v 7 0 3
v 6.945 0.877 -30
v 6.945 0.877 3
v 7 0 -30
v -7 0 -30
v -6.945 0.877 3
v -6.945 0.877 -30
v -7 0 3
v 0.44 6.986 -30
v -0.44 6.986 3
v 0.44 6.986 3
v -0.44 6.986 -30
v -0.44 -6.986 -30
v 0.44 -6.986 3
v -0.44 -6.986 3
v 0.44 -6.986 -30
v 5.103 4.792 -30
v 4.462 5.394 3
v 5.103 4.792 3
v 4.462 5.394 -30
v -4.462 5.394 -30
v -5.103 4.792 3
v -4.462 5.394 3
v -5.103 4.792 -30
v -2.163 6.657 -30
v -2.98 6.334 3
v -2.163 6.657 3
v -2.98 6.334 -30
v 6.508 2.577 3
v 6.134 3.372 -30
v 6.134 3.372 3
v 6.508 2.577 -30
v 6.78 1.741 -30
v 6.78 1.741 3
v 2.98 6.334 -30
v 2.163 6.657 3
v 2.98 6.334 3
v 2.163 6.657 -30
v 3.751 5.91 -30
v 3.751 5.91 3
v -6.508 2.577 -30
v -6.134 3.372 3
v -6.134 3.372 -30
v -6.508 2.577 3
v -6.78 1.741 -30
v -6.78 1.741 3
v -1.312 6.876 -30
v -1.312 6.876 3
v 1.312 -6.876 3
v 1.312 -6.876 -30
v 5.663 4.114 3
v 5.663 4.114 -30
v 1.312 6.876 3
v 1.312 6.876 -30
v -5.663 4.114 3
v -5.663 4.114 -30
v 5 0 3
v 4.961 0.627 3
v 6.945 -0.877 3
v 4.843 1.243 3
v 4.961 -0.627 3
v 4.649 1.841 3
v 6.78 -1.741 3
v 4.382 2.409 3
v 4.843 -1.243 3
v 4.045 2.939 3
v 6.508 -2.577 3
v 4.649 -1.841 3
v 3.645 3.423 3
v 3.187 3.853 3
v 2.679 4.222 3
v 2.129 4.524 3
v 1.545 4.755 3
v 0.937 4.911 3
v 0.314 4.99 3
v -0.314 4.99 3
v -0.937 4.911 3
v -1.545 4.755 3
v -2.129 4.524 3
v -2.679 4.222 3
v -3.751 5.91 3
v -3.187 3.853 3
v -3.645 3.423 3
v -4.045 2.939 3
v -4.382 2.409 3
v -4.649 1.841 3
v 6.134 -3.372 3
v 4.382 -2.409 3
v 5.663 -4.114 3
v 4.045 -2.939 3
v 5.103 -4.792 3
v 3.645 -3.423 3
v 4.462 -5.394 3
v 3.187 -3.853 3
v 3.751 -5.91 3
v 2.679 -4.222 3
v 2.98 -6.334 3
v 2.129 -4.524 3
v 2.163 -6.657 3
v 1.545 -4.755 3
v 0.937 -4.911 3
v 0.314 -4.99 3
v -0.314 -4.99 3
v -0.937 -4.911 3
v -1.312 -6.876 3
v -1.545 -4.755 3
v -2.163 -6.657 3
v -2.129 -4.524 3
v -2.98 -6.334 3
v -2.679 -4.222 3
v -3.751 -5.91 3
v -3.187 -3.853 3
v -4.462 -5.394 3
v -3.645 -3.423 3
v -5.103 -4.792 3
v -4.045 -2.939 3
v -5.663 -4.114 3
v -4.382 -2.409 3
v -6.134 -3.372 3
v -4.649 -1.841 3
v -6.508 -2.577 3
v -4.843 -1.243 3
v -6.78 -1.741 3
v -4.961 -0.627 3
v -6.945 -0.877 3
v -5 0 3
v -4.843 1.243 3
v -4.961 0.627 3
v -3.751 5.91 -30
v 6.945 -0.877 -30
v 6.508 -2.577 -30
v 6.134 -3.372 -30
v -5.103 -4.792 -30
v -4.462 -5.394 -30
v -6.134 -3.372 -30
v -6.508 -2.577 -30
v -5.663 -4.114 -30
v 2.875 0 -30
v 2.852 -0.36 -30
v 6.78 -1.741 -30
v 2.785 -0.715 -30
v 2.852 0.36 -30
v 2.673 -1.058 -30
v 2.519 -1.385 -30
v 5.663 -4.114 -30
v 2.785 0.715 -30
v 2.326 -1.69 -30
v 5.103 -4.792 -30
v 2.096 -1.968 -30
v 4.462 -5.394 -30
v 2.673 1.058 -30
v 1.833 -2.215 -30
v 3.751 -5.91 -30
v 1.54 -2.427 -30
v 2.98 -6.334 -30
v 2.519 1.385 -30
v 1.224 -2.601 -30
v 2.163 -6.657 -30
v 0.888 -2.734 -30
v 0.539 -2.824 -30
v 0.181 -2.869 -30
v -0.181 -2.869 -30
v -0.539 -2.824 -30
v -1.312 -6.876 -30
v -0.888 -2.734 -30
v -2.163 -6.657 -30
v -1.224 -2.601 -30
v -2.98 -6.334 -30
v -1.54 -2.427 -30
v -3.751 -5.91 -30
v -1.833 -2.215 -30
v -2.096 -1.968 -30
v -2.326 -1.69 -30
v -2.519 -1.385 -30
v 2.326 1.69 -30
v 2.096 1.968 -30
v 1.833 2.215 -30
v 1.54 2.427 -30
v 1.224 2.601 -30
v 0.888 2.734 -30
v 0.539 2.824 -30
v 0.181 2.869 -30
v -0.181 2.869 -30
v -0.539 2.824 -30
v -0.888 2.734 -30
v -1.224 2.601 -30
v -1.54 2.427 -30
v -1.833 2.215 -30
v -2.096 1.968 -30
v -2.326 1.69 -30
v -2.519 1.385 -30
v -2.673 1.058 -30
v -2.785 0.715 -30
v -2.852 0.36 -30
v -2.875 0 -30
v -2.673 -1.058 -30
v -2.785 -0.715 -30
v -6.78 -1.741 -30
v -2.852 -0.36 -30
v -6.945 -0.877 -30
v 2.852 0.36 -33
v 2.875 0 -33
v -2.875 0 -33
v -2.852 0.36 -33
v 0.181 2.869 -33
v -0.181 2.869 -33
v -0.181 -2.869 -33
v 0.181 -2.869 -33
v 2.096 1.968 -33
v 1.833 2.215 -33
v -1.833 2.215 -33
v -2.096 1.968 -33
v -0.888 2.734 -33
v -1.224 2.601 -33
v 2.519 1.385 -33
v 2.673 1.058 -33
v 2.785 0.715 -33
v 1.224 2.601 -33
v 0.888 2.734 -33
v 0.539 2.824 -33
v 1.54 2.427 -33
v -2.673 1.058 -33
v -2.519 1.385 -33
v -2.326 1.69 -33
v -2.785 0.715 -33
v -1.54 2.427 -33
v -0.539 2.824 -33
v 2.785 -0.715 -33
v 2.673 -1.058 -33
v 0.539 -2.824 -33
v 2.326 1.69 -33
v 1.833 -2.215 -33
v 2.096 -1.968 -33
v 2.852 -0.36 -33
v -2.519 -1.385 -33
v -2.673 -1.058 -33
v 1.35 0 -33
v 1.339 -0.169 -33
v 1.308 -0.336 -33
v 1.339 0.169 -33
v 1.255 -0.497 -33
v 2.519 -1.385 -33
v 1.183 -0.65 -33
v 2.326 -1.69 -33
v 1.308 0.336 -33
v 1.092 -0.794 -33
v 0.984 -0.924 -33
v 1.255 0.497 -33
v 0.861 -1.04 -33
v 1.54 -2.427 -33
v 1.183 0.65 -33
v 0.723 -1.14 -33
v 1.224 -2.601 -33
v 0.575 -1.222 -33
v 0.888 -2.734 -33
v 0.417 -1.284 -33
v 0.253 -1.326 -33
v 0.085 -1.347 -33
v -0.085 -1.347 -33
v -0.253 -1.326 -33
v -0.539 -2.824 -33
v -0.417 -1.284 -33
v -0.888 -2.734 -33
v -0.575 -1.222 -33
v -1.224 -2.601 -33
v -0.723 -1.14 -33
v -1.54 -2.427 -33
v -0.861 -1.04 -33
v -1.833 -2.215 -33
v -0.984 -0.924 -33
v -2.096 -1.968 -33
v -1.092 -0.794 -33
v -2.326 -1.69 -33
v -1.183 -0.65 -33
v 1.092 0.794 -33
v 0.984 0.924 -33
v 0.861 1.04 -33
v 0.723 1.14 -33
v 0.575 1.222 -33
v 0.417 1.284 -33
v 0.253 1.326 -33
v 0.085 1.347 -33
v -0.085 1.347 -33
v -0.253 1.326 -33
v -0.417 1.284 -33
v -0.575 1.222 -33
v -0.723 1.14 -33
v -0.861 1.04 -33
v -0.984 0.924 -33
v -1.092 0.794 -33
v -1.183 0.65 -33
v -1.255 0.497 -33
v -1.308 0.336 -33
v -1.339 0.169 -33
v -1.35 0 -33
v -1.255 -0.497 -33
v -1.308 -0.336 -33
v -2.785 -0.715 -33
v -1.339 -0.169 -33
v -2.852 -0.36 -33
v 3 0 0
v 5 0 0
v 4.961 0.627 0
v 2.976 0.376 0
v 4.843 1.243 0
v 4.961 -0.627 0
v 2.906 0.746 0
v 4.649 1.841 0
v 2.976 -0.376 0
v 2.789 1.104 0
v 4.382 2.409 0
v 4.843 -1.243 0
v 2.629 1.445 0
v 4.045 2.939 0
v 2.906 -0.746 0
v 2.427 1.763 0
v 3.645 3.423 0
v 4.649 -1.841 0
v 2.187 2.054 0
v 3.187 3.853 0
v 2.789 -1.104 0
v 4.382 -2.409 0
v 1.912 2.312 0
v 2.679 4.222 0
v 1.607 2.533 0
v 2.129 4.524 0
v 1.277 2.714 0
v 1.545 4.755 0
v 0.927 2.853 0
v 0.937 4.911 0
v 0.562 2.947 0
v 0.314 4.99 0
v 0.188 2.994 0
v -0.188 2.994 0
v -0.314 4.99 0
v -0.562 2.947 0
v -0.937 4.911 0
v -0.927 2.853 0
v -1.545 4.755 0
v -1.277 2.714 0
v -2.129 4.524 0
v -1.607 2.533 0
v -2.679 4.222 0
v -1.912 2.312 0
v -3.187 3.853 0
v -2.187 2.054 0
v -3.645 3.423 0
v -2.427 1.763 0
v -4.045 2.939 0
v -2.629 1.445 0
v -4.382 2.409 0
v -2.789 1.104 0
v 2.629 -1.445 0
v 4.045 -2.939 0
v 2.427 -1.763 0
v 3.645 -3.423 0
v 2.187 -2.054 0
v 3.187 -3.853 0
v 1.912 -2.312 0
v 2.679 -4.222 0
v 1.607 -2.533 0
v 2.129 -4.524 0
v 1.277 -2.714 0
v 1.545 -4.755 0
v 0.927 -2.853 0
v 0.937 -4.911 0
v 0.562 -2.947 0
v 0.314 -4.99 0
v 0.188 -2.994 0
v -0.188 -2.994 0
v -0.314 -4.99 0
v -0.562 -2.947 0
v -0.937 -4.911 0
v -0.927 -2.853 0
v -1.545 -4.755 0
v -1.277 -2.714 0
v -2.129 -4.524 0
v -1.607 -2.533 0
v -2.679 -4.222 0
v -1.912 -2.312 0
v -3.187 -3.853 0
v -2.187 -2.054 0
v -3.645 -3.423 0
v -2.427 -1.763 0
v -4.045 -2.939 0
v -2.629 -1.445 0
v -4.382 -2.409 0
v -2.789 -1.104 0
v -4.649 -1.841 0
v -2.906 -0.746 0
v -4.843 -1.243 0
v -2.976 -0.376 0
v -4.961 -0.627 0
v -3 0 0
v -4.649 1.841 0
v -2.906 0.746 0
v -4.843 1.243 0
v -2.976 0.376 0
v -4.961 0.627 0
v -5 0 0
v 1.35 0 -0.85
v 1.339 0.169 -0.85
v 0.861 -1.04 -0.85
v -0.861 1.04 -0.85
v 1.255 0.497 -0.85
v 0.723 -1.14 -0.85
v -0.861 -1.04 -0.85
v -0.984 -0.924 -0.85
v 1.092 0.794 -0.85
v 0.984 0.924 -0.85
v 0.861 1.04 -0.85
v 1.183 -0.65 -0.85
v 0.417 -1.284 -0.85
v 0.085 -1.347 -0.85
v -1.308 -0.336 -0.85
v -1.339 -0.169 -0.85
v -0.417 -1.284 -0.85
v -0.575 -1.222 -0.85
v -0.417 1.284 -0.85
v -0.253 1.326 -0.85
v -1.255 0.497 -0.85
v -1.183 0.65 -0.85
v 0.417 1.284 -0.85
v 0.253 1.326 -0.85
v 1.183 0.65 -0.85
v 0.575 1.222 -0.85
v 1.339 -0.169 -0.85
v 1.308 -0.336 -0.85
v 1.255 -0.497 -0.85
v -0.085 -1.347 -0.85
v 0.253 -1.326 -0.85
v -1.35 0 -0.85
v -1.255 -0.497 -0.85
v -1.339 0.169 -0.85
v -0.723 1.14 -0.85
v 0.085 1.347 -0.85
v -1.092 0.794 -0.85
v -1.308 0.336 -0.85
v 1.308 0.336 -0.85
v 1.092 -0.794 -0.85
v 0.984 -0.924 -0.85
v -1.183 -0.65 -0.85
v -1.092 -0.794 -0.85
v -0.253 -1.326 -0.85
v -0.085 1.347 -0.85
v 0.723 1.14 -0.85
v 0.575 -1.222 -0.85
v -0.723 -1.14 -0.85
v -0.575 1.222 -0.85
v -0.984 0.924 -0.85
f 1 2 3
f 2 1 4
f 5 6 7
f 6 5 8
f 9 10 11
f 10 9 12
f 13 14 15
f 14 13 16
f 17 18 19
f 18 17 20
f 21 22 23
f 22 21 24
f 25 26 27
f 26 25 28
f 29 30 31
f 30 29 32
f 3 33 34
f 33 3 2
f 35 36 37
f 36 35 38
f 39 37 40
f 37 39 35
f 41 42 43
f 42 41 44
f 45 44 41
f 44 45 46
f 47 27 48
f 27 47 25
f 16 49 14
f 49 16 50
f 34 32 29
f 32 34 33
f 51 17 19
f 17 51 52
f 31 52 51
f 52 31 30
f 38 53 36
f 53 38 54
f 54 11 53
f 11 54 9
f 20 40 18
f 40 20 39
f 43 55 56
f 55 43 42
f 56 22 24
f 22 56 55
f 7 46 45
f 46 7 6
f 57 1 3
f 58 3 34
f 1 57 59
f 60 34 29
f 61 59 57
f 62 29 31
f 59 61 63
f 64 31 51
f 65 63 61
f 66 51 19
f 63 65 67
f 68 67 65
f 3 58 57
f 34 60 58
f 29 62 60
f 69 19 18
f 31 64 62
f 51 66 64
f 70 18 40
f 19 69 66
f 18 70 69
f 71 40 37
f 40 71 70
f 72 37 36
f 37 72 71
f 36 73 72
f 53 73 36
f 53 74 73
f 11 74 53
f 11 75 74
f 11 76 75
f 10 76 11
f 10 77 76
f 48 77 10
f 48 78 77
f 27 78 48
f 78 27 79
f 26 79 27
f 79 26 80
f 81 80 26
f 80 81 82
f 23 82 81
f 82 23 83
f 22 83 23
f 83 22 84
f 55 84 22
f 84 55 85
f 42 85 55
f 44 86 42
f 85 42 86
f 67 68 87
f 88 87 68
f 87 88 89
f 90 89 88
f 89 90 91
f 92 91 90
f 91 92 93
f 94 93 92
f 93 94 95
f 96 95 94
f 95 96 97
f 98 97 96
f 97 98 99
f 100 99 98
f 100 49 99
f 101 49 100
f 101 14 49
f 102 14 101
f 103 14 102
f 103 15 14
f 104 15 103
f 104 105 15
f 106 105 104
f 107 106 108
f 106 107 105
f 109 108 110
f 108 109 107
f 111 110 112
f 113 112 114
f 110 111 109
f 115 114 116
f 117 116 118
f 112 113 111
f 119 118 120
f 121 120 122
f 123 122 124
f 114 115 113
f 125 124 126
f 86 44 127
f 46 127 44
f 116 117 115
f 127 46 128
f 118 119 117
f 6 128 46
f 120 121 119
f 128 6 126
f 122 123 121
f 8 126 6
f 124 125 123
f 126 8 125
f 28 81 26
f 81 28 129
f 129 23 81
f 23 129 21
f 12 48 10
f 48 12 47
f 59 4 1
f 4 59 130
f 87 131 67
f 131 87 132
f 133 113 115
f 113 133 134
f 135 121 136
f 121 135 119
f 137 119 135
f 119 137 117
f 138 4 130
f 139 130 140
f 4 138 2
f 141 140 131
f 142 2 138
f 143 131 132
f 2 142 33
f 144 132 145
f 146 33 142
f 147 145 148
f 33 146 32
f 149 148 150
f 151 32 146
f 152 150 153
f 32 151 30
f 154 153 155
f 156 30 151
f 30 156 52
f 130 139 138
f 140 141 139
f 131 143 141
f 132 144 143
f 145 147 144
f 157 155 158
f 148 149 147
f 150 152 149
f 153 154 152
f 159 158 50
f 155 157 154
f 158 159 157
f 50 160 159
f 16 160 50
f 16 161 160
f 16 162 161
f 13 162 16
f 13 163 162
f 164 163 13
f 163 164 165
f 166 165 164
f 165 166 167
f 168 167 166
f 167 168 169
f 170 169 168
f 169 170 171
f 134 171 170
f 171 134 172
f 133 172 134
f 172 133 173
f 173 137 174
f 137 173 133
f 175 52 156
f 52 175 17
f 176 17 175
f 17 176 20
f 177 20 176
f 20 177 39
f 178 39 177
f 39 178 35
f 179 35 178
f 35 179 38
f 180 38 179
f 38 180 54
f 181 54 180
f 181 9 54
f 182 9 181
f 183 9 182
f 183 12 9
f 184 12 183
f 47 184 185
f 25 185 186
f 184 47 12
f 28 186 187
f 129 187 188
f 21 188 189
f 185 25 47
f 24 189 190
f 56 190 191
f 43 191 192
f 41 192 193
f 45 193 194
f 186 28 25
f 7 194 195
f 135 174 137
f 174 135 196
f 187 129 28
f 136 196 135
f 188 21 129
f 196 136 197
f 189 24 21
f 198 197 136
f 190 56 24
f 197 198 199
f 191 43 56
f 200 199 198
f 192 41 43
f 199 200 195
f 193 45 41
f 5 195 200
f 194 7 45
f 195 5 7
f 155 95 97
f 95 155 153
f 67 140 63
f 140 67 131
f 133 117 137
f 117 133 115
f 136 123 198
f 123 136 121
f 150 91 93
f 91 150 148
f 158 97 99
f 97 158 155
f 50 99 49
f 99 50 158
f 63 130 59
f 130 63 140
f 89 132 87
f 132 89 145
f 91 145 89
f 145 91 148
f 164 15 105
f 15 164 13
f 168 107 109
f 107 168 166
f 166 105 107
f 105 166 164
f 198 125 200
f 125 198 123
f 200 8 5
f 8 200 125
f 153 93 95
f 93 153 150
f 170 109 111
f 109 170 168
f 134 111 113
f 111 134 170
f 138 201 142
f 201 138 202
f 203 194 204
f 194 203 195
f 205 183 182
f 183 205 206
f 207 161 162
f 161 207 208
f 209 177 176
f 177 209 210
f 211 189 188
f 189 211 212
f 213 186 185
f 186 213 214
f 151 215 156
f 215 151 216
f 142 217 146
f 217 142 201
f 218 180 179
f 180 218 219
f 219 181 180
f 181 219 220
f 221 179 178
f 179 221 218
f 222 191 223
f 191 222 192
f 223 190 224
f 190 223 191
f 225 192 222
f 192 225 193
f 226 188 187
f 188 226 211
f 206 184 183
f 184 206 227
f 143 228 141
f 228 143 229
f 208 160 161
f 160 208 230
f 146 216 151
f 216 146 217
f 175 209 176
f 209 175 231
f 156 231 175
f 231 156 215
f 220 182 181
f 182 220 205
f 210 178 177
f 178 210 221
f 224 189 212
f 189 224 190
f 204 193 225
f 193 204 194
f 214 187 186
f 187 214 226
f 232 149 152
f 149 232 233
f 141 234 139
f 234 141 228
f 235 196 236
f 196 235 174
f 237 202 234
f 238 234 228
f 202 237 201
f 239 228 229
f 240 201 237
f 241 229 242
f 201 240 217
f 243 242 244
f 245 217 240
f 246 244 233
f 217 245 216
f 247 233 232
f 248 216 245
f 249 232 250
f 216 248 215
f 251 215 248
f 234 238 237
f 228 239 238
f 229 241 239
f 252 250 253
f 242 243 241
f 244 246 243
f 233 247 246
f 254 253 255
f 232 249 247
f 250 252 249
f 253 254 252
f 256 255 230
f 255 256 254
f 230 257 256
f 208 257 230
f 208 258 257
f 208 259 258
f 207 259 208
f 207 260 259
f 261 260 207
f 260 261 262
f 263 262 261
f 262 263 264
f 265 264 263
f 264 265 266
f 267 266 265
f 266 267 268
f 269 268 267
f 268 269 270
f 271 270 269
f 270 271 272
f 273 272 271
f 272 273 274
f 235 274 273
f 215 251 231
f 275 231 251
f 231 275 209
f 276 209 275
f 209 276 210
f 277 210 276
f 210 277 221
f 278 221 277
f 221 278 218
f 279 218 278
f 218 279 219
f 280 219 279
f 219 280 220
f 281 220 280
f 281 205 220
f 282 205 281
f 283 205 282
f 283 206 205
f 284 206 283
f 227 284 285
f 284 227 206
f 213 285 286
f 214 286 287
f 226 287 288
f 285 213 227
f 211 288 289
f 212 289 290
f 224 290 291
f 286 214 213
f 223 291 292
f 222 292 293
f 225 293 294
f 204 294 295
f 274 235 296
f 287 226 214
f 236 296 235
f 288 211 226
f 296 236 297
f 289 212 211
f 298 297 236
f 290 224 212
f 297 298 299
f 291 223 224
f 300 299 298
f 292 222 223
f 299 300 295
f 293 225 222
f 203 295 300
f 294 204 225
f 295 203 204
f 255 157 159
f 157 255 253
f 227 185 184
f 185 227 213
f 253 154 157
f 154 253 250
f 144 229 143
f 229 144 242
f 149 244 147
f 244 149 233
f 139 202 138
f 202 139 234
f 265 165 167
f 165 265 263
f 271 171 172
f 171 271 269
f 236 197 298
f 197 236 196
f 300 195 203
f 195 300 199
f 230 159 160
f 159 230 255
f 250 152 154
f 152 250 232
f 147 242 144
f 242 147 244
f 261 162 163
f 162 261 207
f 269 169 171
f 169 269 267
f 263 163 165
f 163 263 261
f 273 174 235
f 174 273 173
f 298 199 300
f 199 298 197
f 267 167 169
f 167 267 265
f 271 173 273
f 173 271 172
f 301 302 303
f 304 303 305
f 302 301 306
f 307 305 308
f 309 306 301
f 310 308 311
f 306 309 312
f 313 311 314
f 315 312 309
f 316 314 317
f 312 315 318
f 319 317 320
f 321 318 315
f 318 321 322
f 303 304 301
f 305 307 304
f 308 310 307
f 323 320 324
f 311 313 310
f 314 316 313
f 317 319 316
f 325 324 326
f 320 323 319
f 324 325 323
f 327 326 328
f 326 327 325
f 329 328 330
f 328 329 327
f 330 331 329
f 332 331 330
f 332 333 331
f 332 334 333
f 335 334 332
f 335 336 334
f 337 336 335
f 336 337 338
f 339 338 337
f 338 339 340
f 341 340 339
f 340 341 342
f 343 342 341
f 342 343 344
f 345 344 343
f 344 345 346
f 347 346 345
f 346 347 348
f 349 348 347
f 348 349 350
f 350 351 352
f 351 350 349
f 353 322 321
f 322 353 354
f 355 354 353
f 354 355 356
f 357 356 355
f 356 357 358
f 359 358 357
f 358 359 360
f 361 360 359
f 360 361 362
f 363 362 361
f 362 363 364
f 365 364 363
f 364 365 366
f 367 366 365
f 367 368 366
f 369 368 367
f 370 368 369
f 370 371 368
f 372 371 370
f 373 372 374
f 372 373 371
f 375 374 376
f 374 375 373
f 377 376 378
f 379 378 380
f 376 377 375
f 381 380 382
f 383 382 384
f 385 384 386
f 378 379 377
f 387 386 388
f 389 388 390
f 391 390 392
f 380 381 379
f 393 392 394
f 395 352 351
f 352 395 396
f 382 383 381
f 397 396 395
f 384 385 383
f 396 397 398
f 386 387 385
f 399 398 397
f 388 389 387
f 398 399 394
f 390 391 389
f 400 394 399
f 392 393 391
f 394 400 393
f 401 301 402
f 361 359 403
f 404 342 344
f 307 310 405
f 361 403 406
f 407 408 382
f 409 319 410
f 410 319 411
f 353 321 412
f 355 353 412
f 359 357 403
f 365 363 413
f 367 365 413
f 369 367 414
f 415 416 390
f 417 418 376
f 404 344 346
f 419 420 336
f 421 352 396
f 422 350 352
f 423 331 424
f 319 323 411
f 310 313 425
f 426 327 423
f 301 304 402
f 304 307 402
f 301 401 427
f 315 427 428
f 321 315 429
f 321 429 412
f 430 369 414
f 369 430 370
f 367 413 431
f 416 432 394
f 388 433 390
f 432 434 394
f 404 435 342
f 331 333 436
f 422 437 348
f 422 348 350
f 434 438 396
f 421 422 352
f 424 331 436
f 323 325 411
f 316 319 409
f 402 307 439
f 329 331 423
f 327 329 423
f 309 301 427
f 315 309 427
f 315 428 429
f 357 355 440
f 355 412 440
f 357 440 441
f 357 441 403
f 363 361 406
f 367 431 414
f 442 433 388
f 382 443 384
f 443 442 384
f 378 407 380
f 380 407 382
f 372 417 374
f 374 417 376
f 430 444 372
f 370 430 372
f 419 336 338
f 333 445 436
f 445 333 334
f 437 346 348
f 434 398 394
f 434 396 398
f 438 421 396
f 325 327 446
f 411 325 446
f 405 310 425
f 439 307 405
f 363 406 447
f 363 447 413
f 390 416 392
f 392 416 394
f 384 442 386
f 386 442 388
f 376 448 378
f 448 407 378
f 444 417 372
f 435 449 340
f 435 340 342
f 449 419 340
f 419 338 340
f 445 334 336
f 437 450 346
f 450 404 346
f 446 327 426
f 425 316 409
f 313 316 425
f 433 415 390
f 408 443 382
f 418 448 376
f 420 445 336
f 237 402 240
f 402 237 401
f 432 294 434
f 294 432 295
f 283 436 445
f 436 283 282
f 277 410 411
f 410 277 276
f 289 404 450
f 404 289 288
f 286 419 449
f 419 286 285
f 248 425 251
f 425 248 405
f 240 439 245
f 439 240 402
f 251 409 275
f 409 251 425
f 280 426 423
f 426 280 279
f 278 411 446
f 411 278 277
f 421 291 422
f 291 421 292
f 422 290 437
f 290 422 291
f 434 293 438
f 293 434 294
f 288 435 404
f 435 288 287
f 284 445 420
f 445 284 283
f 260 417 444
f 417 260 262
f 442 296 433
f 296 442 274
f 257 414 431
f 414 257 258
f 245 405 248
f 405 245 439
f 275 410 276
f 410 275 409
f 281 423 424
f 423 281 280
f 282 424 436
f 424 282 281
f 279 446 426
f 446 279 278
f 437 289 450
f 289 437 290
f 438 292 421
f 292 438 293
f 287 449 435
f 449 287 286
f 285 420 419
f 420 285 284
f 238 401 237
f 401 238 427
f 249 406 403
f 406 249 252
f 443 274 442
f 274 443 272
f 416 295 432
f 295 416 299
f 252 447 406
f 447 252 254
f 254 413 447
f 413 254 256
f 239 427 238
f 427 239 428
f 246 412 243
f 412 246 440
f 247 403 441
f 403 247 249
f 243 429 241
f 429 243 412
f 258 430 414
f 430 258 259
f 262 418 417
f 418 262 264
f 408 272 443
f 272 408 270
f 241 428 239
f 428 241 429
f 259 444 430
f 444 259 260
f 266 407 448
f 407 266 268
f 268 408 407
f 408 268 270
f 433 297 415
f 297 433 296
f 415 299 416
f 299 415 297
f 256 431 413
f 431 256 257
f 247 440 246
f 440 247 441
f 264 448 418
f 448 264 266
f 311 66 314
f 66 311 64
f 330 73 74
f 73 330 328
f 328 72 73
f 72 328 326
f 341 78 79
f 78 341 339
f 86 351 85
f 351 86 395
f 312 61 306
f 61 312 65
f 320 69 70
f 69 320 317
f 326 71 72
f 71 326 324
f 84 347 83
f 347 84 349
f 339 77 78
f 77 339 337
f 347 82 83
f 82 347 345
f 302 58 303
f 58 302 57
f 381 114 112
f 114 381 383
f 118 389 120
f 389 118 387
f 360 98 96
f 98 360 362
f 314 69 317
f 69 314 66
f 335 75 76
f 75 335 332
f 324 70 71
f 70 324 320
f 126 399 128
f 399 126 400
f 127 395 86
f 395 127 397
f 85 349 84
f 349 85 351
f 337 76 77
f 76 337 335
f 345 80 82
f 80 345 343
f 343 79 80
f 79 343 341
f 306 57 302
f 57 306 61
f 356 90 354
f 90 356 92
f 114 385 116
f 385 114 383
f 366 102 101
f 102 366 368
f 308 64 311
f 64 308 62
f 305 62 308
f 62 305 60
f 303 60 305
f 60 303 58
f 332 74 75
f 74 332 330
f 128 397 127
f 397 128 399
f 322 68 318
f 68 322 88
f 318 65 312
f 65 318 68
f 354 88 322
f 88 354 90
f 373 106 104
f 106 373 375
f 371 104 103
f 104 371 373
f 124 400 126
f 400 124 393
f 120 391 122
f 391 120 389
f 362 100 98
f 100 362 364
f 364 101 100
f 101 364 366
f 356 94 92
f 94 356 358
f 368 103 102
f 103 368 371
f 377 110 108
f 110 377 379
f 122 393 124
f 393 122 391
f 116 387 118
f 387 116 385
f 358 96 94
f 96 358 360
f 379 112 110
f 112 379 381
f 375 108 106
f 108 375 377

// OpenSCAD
$fn = 50;


difference() {
	union() {
		translate(v = [0, 0, -30.0000000000]) {
			cylinder(h = 33, r = 7.0000000000);
		}
		#translate(v = [0, 0, -33.0000000000]) {
			cylinder(h = 33, r = 2.8750000000);
		}
	}
	union() {
		translate(v = [0, 0, 0]) {
			rotate(a = [0, 0, 0]) {
				difference() {
					union() {
						translate(v = [0, 0, -33.0000000000]) {
							cylinder(h = 33, r = 1.0000000000);
						}
						translate(v = [0, 0, -0.8500000000]) {
							cylinder(h = 0.8500000000, r1 = 1.3500000000, r2 = 3.0000000000);
						}
						translate(v = [0, 0, -33.0000000000]) {
							cylinder(h = 33, r = 1.3500000000);
						}
						translate(v = [0, 0, -33.0000000000]) {
							cylinder(h = 33, r = 1.0000000000);
						}
					}
					union();
				}
			}
		}
		#cylinder(h = 3, r = 5.0000000000);
	}
}
